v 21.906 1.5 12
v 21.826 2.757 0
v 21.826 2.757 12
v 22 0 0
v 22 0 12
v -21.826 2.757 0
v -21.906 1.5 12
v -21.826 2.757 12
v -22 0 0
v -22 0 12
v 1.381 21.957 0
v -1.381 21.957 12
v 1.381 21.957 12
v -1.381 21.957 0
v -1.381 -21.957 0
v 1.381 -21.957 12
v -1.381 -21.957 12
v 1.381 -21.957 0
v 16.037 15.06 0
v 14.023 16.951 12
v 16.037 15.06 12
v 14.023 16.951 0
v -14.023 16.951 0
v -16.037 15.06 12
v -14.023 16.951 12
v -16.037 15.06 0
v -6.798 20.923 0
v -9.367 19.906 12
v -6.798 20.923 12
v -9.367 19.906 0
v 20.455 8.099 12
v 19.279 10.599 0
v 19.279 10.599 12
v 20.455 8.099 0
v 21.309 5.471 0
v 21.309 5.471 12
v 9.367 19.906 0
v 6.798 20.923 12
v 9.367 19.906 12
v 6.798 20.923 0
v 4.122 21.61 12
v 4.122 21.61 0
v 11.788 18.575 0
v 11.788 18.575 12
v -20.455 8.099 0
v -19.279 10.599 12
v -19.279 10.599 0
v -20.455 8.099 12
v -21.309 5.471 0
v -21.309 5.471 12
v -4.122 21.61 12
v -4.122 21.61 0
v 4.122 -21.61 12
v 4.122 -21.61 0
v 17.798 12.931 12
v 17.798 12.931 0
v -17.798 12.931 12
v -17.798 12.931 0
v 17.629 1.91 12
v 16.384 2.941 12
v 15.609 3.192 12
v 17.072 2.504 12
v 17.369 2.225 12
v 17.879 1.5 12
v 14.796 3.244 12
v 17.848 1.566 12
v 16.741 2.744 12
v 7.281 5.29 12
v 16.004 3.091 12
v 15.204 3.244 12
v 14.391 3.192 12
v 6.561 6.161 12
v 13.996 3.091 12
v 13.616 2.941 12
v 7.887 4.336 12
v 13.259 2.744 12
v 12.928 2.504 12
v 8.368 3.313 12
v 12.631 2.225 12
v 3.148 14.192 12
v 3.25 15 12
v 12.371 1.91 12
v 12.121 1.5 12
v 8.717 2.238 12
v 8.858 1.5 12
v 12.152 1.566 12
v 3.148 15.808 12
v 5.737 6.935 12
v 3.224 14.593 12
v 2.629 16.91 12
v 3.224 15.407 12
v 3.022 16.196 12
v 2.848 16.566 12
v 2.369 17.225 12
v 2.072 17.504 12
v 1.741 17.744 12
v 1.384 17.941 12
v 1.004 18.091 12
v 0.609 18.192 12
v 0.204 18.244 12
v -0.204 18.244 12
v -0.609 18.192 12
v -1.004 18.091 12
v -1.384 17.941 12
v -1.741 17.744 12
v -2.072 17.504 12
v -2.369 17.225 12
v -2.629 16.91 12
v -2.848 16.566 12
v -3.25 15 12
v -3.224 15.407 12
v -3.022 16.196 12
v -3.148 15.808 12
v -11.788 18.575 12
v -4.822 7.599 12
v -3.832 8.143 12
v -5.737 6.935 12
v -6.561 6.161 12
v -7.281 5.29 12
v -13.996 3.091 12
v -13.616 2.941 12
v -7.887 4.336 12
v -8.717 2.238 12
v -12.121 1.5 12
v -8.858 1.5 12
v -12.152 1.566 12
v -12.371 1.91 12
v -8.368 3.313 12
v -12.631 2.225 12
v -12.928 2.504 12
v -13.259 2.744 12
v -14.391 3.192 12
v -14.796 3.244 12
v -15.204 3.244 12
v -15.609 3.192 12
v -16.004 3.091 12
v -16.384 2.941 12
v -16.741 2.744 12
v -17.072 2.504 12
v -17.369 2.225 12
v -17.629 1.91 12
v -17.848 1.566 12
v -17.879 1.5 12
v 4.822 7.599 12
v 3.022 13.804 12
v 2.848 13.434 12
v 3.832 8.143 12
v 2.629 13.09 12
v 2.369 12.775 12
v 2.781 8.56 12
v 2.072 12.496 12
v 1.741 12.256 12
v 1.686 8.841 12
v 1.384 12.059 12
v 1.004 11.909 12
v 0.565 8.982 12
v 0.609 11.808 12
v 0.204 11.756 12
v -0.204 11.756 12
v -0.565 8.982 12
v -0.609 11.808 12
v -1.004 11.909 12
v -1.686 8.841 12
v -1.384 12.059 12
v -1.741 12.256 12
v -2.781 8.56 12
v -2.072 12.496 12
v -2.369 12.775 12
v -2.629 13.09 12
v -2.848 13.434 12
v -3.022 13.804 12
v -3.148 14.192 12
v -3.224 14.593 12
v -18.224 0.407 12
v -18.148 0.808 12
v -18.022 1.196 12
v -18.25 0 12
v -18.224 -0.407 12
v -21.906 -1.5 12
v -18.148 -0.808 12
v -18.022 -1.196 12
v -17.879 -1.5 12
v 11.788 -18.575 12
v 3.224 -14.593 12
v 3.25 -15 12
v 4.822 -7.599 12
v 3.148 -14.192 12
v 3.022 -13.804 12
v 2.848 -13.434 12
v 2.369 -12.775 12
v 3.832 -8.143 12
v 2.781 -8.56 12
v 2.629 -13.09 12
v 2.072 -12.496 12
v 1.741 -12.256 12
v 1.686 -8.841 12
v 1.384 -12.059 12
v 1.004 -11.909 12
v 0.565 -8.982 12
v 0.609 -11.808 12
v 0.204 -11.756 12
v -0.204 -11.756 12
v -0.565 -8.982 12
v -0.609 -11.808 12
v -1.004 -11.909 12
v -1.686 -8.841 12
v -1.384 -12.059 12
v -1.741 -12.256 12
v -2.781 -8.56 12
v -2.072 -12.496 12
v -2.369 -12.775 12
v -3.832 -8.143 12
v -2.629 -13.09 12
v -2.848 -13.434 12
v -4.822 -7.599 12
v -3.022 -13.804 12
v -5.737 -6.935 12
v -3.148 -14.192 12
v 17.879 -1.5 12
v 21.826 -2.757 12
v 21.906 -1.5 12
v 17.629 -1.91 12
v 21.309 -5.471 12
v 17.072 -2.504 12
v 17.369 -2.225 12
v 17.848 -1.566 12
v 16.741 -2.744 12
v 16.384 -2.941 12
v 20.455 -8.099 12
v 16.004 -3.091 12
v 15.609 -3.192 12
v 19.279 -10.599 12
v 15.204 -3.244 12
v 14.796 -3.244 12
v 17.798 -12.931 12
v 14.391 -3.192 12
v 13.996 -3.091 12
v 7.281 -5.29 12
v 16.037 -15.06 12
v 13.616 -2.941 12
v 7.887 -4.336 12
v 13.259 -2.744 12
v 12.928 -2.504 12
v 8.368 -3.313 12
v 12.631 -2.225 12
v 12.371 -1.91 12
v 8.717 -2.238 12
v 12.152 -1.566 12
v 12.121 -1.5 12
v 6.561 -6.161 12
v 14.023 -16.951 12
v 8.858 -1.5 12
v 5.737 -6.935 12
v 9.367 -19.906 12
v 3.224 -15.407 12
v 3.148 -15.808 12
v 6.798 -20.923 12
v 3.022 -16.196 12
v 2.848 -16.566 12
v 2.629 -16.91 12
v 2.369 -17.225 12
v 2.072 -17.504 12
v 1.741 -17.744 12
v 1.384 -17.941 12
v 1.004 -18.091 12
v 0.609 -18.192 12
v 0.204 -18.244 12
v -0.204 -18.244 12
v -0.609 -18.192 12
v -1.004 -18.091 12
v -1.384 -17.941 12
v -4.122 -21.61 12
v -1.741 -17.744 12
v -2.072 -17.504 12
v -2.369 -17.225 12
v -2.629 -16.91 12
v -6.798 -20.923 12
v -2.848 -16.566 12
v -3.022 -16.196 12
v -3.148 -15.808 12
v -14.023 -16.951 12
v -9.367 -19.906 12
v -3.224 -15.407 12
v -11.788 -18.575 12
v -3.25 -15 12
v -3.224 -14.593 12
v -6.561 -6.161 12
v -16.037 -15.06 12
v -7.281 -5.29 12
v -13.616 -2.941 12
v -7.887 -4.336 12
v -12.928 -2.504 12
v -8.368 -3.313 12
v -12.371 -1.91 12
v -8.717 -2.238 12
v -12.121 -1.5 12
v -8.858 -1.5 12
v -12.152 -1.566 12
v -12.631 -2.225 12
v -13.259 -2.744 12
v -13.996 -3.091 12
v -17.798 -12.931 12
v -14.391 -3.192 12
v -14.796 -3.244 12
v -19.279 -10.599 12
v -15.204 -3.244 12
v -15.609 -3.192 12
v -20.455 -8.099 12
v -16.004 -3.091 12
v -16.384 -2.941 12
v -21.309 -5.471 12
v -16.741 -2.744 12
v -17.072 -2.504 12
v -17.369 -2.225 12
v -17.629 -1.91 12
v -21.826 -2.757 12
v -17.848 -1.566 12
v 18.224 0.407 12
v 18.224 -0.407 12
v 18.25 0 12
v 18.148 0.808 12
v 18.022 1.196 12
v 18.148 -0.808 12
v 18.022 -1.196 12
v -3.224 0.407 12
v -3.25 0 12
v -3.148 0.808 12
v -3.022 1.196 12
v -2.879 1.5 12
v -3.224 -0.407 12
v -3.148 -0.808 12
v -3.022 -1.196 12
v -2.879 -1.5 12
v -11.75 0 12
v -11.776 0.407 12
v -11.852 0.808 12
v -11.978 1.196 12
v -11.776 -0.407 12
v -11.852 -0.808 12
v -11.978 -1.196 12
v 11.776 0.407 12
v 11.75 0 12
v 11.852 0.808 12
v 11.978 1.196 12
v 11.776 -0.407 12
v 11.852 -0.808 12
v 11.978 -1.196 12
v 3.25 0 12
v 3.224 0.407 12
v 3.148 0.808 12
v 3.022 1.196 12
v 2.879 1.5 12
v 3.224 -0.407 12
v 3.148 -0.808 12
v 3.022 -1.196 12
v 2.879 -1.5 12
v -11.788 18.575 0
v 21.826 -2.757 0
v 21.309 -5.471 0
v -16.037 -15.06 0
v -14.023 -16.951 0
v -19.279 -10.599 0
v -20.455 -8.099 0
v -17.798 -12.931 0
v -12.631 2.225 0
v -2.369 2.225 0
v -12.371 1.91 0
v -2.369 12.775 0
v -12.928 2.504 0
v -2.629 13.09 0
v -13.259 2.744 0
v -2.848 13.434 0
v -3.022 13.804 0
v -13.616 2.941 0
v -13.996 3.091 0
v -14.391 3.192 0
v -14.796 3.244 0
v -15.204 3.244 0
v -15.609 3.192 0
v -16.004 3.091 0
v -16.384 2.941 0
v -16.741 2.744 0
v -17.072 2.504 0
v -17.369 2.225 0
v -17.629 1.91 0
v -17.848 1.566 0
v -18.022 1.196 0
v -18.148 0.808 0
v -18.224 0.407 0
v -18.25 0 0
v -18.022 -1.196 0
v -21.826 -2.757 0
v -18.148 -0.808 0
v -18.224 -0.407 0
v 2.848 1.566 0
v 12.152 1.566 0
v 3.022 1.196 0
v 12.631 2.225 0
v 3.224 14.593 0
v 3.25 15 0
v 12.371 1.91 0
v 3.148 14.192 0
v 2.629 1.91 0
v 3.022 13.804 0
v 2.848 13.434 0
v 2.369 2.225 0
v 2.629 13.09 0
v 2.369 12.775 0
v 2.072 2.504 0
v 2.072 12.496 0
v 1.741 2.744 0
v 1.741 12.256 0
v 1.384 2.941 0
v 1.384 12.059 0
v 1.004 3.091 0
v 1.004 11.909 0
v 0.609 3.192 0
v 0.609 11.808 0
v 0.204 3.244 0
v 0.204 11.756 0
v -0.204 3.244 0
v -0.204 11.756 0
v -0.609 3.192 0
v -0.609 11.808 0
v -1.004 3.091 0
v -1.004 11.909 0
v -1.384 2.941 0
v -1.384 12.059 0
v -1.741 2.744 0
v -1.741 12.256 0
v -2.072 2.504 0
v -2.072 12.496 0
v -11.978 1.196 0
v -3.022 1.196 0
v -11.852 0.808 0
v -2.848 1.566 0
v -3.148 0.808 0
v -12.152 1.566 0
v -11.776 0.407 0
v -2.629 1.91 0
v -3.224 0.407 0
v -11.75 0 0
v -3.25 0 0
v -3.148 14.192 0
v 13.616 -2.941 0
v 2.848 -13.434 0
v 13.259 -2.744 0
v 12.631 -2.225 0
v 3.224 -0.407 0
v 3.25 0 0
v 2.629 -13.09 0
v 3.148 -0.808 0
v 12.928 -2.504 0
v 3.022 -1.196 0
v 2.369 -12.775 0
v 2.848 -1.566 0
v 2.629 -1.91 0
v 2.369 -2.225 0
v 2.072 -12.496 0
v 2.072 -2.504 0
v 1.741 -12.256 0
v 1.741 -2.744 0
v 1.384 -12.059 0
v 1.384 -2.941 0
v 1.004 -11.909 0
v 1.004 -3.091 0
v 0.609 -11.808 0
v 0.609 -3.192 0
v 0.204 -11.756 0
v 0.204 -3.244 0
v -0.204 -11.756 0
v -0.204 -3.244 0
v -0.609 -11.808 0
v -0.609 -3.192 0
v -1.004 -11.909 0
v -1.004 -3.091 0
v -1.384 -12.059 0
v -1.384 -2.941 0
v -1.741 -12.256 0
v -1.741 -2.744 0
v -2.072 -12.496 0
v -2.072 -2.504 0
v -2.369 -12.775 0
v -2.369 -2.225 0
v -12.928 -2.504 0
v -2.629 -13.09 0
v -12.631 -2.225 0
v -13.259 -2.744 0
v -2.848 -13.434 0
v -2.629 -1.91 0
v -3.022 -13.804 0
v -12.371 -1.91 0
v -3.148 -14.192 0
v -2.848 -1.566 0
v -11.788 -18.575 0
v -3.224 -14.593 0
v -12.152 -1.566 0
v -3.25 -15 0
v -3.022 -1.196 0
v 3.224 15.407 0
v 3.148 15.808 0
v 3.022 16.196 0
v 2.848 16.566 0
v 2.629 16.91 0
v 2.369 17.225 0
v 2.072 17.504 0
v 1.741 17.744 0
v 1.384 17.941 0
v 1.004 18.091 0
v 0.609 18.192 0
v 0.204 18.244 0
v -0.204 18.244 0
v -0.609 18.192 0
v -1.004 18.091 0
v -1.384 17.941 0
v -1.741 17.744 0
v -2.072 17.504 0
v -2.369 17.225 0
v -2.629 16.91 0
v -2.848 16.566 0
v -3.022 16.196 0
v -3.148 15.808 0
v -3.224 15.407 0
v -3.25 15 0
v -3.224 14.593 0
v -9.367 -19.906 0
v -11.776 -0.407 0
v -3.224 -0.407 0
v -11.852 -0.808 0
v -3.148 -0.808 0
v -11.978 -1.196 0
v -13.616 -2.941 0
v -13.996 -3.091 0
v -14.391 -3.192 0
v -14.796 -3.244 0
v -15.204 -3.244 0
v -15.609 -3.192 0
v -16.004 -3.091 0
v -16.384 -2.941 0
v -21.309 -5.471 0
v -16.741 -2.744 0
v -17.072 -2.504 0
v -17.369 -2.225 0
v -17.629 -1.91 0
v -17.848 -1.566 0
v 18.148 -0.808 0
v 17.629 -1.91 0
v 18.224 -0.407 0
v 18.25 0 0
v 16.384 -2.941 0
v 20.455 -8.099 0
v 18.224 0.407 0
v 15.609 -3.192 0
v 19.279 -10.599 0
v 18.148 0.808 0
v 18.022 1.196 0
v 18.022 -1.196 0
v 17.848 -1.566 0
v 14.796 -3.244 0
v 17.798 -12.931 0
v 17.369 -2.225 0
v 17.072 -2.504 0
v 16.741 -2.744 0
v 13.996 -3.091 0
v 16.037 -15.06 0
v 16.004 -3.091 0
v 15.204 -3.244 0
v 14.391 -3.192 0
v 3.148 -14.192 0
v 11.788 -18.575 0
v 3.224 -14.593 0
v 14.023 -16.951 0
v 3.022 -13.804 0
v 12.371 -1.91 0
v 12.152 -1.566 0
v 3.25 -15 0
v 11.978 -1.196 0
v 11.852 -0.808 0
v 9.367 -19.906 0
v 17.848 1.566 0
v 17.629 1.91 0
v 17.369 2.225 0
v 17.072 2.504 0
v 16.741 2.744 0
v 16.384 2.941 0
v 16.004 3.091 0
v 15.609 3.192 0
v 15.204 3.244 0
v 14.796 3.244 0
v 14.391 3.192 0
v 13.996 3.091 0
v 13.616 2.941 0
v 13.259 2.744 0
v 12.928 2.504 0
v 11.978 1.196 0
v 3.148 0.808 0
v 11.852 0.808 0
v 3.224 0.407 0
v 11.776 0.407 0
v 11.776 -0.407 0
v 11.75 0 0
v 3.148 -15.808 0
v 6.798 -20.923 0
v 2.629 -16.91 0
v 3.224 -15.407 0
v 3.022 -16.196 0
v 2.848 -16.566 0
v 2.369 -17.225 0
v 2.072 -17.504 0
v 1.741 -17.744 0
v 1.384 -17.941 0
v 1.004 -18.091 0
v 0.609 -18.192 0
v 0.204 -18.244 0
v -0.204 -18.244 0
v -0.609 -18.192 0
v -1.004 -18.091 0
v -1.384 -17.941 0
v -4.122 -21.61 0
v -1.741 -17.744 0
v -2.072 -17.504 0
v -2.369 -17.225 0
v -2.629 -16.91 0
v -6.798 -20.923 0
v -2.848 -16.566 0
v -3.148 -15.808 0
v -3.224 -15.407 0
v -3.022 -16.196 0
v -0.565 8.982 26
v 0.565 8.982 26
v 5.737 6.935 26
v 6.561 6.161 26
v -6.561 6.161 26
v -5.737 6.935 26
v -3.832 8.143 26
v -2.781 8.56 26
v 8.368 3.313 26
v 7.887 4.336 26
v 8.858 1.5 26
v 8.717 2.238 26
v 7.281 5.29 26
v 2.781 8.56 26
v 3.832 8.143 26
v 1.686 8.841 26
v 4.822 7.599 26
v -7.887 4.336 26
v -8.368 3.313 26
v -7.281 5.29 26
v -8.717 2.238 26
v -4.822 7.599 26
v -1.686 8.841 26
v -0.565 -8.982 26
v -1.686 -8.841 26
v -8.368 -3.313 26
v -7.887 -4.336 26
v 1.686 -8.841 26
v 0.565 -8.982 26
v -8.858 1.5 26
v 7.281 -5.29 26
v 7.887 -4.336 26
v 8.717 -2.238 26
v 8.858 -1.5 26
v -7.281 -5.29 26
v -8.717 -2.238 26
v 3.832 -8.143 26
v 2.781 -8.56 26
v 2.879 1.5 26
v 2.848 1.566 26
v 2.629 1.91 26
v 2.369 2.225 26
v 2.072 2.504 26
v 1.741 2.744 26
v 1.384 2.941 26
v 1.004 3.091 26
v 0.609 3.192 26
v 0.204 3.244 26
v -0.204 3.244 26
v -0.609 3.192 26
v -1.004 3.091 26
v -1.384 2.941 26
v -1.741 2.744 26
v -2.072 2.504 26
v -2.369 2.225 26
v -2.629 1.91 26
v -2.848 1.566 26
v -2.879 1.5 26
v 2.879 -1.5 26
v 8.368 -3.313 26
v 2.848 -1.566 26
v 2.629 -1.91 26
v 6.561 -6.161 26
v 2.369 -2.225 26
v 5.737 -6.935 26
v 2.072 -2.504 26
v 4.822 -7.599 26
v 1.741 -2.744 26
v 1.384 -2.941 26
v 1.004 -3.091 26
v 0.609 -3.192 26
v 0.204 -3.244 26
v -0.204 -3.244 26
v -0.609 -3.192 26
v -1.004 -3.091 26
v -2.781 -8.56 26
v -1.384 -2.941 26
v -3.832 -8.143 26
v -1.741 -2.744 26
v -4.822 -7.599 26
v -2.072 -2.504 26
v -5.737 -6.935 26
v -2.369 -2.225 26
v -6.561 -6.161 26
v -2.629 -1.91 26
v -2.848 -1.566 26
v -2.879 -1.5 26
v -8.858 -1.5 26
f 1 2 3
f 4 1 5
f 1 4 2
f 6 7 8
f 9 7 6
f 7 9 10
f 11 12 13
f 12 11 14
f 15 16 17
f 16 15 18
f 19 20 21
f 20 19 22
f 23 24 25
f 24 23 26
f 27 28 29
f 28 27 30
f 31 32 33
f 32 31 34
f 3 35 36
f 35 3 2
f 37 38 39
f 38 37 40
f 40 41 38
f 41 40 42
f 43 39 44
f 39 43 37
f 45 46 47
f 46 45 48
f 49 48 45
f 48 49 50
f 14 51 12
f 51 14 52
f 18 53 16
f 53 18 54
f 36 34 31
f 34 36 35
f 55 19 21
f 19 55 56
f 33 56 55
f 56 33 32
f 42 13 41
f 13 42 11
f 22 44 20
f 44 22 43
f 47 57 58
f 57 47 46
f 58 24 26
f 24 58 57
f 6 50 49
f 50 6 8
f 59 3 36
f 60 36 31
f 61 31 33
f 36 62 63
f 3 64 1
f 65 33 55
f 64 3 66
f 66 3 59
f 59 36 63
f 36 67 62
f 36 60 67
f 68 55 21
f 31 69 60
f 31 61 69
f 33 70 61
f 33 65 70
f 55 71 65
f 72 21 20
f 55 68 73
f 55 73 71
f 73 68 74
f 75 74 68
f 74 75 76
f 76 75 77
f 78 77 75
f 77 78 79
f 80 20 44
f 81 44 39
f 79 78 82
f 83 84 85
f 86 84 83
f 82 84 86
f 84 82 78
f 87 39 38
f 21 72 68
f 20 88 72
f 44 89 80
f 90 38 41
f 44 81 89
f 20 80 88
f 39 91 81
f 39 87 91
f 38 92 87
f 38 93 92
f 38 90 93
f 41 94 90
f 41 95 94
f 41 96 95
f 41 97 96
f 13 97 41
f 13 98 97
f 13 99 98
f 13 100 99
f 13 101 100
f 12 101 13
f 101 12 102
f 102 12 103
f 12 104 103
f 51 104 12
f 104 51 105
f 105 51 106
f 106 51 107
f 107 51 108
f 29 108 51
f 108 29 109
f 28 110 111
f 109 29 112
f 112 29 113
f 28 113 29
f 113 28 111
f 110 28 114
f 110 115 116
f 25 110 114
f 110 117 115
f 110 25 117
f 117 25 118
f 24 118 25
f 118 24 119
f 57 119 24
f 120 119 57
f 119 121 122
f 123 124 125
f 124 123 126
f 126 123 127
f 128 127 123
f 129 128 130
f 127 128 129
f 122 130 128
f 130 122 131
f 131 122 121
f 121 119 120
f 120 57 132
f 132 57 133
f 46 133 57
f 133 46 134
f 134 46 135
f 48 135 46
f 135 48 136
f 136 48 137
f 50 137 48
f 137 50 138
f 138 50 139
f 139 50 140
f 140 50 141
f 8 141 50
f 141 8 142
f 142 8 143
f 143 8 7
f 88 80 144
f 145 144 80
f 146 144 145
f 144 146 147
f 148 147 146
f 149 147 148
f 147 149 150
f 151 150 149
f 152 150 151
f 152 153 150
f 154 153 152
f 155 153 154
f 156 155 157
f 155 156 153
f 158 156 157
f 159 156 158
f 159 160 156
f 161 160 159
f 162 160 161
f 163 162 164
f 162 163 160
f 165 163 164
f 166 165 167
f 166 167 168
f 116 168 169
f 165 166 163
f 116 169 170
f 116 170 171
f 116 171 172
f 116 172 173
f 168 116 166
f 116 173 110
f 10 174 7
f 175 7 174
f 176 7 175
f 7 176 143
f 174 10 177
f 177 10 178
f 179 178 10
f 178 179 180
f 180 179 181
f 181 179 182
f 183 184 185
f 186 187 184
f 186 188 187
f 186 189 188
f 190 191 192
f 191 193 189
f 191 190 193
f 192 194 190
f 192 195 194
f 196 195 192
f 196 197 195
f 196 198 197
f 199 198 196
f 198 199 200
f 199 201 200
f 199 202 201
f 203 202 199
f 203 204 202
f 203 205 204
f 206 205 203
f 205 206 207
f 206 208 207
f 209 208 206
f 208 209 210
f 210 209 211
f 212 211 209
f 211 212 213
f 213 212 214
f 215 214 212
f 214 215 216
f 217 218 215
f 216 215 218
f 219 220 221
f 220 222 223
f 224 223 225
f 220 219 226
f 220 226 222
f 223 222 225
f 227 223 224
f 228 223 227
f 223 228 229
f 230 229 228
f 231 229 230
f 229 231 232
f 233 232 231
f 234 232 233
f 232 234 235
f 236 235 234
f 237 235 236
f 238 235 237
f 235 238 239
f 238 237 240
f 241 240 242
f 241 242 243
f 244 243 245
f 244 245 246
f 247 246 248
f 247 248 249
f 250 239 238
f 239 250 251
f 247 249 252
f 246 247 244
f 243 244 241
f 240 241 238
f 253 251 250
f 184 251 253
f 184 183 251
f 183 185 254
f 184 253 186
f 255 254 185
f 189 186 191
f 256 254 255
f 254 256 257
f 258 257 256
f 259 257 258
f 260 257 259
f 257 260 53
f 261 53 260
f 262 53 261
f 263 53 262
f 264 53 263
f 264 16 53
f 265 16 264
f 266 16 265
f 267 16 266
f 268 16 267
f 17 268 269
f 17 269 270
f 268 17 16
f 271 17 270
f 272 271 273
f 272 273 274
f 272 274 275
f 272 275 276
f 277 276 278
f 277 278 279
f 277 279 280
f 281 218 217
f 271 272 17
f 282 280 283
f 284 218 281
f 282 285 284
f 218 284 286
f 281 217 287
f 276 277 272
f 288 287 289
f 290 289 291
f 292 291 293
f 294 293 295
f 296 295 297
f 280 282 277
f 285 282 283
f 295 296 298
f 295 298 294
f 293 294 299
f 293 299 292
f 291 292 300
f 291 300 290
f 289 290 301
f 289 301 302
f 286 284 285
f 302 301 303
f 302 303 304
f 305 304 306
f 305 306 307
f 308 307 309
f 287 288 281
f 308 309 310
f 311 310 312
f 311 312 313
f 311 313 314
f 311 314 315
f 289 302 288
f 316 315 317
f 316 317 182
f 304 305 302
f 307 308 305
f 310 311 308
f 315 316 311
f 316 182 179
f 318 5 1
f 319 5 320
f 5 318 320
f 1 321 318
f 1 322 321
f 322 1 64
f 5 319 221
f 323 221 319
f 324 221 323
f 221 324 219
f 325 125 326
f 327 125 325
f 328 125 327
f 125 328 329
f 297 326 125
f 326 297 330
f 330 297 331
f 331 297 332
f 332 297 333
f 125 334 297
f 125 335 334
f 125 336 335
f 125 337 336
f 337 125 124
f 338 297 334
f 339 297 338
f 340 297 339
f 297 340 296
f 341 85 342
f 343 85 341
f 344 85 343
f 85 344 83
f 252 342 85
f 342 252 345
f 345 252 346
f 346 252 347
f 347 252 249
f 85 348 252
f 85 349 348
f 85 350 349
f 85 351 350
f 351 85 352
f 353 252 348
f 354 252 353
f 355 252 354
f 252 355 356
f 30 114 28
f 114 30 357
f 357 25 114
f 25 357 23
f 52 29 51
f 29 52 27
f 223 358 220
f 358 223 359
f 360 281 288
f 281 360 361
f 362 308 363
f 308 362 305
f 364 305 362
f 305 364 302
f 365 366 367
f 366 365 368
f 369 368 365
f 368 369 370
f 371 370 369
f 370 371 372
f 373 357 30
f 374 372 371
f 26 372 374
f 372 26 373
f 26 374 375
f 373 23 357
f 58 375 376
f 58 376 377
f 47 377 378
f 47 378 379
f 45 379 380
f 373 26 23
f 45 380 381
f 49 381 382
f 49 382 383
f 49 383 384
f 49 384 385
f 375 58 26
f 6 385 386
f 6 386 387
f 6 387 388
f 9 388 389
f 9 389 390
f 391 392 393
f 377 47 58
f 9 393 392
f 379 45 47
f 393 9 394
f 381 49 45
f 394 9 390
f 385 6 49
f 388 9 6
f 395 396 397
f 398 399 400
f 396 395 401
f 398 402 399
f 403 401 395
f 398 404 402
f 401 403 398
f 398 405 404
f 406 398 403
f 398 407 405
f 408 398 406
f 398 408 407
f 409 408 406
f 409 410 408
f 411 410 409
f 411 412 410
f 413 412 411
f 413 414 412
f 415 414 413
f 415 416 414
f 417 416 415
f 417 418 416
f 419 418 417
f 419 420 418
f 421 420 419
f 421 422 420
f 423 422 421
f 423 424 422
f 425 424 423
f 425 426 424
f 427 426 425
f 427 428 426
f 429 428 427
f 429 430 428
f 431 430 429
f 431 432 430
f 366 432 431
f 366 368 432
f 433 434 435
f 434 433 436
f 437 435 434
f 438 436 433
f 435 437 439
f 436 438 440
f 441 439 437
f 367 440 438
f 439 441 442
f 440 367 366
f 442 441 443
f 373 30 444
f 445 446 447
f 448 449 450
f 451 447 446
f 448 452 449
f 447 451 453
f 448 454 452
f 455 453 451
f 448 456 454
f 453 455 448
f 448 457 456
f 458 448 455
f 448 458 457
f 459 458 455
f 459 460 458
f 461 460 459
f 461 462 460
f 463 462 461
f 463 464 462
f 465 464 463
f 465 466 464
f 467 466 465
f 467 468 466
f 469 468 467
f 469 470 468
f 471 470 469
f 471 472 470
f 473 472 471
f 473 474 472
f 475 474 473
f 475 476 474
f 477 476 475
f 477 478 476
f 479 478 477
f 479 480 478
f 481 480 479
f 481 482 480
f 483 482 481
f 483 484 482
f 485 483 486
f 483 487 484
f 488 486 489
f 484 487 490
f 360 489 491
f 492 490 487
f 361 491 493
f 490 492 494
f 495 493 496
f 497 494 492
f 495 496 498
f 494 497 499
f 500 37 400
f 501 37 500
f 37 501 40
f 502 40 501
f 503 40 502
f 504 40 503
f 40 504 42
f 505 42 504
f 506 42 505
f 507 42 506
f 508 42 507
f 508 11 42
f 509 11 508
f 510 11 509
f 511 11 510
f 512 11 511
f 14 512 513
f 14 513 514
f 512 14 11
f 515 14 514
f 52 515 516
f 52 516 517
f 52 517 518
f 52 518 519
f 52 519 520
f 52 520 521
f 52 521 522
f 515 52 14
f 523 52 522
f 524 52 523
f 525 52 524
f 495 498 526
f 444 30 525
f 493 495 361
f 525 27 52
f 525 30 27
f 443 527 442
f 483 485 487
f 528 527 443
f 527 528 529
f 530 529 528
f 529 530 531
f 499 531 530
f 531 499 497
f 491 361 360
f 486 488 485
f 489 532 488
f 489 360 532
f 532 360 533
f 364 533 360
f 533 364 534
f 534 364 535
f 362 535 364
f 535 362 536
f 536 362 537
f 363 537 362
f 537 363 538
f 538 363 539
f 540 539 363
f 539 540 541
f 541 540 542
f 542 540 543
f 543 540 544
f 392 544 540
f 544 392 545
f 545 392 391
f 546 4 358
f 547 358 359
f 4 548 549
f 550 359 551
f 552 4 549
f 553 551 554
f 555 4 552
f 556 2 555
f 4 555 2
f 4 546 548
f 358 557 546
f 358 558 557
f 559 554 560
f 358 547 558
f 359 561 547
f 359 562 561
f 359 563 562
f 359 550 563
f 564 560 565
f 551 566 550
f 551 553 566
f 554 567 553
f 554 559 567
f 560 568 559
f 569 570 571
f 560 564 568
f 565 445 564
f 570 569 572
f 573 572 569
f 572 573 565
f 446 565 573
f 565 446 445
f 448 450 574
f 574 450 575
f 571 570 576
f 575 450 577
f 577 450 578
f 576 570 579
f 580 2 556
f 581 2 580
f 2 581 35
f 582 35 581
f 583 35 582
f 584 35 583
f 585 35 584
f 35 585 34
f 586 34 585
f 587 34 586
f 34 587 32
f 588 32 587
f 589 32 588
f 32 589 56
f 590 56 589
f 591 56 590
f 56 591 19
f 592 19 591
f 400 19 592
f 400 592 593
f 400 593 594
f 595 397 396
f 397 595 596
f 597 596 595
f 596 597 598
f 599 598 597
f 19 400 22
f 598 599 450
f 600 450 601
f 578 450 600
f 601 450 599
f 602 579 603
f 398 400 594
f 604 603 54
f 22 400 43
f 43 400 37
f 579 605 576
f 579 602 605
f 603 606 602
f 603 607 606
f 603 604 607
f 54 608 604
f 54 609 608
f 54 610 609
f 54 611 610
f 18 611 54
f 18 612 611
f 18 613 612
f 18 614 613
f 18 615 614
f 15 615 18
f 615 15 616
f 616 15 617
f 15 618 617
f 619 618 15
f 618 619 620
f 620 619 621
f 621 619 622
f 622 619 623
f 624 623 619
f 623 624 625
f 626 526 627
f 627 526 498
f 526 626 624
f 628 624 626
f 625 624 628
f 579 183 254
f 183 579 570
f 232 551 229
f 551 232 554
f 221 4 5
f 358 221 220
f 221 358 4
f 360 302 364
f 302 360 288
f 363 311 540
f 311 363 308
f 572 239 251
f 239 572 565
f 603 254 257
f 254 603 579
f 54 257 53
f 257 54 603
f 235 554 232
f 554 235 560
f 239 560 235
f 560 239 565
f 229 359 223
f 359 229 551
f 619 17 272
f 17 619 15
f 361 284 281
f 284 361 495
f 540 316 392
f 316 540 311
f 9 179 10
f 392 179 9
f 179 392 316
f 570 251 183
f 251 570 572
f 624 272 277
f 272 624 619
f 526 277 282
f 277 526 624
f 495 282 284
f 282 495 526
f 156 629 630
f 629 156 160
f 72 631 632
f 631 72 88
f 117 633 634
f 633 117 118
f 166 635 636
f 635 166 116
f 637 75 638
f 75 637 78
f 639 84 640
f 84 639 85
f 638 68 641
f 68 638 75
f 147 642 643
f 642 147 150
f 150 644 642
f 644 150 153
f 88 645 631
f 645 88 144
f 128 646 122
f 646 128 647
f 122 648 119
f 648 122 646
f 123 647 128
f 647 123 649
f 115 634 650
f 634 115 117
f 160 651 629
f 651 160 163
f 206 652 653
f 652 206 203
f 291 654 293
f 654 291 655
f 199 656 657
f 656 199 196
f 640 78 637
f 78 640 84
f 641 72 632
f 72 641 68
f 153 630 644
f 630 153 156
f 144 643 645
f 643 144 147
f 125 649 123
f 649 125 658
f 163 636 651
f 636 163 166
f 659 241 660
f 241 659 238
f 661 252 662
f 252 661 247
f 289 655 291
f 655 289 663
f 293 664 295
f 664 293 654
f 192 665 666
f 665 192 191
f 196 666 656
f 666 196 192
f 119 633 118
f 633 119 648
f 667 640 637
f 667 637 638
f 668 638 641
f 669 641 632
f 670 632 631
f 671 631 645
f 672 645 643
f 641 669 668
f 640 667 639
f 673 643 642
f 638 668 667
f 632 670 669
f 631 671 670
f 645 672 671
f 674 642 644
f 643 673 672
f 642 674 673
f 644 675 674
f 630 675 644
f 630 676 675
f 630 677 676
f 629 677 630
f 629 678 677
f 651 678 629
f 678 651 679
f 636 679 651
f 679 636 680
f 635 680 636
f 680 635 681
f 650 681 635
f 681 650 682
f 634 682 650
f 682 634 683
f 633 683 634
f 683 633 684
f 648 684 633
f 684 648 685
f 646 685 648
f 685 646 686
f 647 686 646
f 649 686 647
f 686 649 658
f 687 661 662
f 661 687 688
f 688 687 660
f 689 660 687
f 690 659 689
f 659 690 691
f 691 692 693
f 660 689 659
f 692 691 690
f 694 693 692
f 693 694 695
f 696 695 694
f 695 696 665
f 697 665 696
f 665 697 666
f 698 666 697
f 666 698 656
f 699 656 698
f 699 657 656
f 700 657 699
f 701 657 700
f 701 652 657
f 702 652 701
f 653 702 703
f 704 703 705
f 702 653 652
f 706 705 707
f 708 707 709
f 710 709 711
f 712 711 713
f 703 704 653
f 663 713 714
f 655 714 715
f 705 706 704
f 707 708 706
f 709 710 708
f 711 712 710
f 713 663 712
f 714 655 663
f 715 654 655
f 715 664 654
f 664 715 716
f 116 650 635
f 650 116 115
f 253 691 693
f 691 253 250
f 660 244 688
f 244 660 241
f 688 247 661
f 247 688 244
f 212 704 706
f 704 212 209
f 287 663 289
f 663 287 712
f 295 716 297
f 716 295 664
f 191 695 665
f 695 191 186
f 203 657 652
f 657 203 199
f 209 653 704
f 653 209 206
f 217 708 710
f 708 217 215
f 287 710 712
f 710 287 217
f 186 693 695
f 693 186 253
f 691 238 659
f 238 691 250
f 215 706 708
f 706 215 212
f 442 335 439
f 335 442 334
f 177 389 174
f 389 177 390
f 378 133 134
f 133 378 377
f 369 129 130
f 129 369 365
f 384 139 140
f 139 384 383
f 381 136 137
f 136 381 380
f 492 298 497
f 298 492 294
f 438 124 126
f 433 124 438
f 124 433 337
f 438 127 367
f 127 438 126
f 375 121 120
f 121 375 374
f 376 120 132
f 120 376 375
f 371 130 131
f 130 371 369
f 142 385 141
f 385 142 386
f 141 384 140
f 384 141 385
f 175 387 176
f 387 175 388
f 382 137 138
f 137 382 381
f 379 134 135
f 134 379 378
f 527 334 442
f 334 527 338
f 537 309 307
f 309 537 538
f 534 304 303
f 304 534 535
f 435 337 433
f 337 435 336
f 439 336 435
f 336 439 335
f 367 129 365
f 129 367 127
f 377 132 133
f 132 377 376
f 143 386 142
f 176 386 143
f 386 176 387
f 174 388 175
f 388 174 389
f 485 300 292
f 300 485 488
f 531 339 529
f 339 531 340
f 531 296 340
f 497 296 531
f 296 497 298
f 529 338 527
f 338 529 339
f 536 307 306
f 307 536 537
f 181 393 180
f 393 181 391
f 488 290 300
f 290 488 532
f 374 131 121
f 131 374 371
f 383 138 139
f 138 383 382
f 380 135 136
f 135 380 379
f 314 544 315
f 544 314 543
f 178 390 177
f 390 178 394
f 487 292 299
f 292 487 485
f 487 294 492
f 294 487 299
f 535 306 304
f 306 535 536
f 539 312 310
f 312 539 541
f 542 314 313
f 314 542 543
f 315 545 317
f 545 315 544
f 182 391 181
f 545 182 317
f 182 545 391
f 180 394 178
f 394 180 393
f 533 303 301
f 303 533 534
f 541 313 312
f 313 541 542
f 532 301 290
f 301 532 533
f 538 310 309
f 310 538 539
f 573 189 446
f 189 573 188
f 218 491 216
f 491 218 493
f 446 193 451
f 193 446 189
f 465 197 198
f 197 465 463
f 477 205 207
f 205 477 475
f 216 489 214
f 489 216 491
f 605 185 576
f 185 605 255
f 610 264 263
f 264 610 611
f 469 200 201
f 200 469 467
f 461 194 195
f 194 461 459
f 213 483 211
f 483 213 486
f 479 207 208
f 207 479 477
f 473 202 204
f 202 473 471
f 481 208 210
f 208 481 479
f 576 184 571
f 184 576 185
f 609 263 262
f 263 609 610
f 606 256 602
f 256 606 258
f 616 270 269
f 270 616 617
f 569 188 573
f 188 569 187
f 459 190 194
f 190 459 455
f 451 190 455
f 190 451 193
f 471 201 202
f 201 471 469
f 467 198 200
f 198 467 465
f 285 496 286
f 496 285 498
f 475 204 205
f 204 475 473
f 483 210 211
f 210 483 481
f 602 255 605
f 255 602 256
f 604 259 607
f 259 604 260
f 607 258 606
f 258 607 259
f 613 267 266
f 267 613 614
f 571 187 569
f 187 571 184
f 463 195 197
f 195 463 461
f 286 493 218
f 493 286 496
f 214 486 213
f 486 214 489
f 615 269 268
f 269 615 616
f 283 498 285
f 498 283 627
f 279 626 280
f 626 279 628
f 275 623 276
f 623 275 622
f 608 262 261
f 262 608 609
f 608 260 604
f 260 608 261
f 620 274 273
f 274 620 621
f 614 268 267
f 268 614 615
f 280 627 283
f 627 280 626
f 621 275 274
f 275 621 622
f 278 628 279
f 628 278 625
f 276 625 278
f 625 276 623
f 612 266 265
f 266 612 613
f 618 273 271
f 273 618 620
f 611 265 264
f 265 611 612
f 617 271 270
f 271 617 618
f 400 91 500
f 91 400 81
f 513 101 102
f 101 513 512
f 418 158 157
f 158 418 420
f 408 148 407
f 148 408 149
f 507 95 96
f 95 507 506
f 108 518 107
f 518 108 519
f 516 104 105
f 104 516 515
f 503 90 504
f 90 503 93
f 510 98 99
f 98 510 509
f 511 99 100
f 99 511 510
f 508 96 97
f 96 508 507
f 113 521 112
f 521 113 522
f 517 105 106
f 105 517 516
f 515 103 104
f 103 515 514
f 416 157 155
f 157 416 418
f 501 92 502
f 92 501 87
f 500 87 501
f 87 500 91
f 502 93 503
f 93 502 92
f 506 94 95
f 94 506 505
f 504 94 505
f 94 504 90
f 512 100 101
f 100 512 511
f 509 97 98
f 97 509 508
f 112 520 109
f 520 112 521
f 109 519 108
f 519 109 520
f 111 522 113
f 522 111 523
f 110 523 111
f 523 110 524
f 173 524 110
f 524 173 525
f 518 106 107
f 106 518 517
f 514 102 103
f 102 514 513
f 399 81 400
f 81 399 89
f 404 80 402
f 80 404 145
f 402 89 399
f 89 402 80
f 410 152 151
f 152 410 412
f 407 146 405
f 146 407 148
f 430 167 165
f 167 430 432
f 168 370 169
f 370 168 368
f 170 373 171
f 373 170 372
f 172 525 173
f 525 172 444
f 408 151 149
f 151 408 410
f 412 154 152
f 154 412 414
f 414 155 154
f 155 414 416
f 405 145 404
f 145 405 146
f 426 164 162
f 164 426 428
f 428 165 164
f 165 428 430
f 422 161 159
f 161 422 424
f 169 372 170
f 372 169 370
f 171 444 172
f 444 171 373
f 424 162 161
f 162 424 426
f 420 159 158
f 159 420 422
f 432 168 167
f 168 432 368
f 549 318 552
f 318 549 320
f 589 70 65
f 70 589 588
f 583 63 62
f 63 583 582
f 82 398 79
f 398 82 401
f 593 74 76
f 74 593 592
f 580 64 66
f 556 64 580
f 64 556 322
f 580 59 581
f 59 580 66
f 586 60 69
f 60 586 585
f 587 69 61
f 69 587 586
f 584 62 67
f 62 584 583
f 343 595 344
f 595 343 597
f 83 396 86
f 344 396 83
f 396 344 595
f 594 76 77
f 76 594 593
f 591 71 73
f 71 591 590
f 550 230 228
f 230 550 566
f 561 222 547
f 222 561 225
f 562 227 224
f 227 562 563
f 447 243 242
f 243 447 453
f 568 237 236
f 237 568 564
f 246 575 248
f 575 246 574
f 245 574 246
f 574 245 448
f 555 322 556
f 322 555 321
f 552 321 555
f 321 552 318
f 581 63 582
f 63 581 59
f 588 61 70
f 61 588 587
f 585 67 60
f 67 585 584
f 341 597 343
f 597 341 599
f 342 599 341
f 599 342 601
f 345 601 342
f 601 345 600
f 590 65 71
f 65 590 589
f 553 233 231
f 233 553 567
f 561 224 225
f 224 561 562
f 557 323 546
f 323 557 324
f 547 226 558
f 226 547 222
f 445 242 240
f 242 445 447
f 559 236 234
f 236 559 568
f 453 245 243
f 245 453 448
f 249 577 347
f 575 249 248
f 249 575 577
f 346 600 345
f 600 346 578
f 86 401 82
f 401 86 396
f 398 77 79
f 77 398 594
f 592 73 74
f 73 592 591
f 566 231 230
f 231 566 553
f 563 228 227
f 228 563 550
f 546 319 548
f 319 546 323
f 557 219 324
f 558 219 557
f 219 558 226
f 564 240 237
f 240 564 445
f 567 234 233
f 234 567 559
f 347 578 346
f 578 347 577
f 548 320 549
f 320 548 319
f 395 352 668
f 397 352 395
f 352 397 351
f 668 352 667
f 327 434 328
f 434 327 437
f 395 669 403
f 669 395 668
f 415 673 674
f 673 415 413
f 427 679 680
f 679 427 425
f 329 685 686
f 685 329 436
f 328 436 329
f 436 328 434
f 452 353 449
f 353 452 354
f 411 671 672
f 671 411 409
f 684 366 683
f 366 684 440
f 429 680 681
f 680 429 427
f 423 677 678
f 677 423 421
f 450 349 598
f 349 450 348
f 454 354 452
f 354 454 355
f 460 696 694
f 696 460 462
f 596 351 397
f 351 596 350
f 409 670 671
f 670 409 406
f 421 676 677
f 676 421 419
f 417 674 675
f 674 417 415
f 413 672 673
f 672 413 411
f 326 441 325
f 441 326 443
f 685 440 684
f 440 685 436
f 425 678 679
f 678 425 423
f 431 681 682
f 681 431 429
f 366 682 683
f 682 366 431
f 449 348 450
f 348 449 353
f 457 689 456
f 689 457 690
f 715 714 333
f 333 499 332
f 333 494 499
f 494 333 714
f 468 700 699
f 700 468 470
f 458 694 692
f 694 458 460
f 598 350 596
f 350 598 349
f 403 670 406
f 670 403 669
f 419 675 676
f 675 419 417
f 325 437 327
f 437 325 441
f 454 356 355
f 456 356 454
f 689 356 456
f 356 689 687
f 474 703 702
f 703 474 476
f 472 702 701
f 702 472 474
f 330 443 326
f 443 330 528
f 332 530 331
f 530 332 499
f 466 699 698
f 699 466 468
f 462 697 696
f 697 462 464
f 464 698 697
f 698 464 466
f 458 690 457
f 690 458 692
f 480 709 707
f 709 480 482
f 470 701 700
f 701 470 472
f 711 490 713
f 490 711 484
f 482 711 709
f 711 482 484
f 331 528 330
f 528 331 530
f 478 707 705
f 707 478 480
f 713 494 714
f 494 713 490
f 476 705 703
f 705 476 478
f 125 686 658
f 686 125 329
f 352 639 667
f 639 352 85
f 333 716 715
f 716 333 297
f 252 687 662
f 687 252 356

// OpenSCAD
$fn = 50;


difference() {
	union() {
		translate(v = [0, 0, 0.0000000000]) {
			rotate(a = [0, 0, 0]) {
				cylinder(h = 12, r = 22.0000000000);
			}
		}
		translate(v = [0, 0, 6.0000000000]) {
			rotate(a = [0, 0, 0]) {
				cylinder(h = 20, r = 9.0000000000);
			}
		}
	}
	union() {
		translate(v = [-15.0000000000, 0.0000000000, -125.0000000000]) {
			rotate(a = [0, 0, 0]) {
				cylinder(h = 250, r = 3.2500000000);
			}
		}
		translate(v = [0.0000000000, -15.0000000000, -125.0000000000]) {
			rotate(a = [0, 0, 0]) {
				cylinder(h = 250, r = 3.2500000000);
			}
		}
		translate(v = [0.0000000000, 15.0000000000, -125.0000000000]) {
			rotate(a = [0, 0, 0]) {
				cylinder(h = 250, r = 3.2500000000);
			}
		}
		translate(v = [15.0000000000, 0.0000000000, -125.0000000000]) {
			rotate(a = [0, 0, 0]) {
				cylinder(h = 250, r = 3.2500000000);
			}
		}
		translate(v = [0.0000000000, 0.0000000000, -125.0000000000]) {
			rotate(a = [0, 0, 0]) {
				cylinder(h = 250, r = 3.2500000000);
			}
		}
		translate(v = [-27.0000000000, -1.5000000000, 12]) {
			rotate(a = [0, 0, 0]) {
				cube(size = [54, 3, 20]);
			}
		}
	}
}
